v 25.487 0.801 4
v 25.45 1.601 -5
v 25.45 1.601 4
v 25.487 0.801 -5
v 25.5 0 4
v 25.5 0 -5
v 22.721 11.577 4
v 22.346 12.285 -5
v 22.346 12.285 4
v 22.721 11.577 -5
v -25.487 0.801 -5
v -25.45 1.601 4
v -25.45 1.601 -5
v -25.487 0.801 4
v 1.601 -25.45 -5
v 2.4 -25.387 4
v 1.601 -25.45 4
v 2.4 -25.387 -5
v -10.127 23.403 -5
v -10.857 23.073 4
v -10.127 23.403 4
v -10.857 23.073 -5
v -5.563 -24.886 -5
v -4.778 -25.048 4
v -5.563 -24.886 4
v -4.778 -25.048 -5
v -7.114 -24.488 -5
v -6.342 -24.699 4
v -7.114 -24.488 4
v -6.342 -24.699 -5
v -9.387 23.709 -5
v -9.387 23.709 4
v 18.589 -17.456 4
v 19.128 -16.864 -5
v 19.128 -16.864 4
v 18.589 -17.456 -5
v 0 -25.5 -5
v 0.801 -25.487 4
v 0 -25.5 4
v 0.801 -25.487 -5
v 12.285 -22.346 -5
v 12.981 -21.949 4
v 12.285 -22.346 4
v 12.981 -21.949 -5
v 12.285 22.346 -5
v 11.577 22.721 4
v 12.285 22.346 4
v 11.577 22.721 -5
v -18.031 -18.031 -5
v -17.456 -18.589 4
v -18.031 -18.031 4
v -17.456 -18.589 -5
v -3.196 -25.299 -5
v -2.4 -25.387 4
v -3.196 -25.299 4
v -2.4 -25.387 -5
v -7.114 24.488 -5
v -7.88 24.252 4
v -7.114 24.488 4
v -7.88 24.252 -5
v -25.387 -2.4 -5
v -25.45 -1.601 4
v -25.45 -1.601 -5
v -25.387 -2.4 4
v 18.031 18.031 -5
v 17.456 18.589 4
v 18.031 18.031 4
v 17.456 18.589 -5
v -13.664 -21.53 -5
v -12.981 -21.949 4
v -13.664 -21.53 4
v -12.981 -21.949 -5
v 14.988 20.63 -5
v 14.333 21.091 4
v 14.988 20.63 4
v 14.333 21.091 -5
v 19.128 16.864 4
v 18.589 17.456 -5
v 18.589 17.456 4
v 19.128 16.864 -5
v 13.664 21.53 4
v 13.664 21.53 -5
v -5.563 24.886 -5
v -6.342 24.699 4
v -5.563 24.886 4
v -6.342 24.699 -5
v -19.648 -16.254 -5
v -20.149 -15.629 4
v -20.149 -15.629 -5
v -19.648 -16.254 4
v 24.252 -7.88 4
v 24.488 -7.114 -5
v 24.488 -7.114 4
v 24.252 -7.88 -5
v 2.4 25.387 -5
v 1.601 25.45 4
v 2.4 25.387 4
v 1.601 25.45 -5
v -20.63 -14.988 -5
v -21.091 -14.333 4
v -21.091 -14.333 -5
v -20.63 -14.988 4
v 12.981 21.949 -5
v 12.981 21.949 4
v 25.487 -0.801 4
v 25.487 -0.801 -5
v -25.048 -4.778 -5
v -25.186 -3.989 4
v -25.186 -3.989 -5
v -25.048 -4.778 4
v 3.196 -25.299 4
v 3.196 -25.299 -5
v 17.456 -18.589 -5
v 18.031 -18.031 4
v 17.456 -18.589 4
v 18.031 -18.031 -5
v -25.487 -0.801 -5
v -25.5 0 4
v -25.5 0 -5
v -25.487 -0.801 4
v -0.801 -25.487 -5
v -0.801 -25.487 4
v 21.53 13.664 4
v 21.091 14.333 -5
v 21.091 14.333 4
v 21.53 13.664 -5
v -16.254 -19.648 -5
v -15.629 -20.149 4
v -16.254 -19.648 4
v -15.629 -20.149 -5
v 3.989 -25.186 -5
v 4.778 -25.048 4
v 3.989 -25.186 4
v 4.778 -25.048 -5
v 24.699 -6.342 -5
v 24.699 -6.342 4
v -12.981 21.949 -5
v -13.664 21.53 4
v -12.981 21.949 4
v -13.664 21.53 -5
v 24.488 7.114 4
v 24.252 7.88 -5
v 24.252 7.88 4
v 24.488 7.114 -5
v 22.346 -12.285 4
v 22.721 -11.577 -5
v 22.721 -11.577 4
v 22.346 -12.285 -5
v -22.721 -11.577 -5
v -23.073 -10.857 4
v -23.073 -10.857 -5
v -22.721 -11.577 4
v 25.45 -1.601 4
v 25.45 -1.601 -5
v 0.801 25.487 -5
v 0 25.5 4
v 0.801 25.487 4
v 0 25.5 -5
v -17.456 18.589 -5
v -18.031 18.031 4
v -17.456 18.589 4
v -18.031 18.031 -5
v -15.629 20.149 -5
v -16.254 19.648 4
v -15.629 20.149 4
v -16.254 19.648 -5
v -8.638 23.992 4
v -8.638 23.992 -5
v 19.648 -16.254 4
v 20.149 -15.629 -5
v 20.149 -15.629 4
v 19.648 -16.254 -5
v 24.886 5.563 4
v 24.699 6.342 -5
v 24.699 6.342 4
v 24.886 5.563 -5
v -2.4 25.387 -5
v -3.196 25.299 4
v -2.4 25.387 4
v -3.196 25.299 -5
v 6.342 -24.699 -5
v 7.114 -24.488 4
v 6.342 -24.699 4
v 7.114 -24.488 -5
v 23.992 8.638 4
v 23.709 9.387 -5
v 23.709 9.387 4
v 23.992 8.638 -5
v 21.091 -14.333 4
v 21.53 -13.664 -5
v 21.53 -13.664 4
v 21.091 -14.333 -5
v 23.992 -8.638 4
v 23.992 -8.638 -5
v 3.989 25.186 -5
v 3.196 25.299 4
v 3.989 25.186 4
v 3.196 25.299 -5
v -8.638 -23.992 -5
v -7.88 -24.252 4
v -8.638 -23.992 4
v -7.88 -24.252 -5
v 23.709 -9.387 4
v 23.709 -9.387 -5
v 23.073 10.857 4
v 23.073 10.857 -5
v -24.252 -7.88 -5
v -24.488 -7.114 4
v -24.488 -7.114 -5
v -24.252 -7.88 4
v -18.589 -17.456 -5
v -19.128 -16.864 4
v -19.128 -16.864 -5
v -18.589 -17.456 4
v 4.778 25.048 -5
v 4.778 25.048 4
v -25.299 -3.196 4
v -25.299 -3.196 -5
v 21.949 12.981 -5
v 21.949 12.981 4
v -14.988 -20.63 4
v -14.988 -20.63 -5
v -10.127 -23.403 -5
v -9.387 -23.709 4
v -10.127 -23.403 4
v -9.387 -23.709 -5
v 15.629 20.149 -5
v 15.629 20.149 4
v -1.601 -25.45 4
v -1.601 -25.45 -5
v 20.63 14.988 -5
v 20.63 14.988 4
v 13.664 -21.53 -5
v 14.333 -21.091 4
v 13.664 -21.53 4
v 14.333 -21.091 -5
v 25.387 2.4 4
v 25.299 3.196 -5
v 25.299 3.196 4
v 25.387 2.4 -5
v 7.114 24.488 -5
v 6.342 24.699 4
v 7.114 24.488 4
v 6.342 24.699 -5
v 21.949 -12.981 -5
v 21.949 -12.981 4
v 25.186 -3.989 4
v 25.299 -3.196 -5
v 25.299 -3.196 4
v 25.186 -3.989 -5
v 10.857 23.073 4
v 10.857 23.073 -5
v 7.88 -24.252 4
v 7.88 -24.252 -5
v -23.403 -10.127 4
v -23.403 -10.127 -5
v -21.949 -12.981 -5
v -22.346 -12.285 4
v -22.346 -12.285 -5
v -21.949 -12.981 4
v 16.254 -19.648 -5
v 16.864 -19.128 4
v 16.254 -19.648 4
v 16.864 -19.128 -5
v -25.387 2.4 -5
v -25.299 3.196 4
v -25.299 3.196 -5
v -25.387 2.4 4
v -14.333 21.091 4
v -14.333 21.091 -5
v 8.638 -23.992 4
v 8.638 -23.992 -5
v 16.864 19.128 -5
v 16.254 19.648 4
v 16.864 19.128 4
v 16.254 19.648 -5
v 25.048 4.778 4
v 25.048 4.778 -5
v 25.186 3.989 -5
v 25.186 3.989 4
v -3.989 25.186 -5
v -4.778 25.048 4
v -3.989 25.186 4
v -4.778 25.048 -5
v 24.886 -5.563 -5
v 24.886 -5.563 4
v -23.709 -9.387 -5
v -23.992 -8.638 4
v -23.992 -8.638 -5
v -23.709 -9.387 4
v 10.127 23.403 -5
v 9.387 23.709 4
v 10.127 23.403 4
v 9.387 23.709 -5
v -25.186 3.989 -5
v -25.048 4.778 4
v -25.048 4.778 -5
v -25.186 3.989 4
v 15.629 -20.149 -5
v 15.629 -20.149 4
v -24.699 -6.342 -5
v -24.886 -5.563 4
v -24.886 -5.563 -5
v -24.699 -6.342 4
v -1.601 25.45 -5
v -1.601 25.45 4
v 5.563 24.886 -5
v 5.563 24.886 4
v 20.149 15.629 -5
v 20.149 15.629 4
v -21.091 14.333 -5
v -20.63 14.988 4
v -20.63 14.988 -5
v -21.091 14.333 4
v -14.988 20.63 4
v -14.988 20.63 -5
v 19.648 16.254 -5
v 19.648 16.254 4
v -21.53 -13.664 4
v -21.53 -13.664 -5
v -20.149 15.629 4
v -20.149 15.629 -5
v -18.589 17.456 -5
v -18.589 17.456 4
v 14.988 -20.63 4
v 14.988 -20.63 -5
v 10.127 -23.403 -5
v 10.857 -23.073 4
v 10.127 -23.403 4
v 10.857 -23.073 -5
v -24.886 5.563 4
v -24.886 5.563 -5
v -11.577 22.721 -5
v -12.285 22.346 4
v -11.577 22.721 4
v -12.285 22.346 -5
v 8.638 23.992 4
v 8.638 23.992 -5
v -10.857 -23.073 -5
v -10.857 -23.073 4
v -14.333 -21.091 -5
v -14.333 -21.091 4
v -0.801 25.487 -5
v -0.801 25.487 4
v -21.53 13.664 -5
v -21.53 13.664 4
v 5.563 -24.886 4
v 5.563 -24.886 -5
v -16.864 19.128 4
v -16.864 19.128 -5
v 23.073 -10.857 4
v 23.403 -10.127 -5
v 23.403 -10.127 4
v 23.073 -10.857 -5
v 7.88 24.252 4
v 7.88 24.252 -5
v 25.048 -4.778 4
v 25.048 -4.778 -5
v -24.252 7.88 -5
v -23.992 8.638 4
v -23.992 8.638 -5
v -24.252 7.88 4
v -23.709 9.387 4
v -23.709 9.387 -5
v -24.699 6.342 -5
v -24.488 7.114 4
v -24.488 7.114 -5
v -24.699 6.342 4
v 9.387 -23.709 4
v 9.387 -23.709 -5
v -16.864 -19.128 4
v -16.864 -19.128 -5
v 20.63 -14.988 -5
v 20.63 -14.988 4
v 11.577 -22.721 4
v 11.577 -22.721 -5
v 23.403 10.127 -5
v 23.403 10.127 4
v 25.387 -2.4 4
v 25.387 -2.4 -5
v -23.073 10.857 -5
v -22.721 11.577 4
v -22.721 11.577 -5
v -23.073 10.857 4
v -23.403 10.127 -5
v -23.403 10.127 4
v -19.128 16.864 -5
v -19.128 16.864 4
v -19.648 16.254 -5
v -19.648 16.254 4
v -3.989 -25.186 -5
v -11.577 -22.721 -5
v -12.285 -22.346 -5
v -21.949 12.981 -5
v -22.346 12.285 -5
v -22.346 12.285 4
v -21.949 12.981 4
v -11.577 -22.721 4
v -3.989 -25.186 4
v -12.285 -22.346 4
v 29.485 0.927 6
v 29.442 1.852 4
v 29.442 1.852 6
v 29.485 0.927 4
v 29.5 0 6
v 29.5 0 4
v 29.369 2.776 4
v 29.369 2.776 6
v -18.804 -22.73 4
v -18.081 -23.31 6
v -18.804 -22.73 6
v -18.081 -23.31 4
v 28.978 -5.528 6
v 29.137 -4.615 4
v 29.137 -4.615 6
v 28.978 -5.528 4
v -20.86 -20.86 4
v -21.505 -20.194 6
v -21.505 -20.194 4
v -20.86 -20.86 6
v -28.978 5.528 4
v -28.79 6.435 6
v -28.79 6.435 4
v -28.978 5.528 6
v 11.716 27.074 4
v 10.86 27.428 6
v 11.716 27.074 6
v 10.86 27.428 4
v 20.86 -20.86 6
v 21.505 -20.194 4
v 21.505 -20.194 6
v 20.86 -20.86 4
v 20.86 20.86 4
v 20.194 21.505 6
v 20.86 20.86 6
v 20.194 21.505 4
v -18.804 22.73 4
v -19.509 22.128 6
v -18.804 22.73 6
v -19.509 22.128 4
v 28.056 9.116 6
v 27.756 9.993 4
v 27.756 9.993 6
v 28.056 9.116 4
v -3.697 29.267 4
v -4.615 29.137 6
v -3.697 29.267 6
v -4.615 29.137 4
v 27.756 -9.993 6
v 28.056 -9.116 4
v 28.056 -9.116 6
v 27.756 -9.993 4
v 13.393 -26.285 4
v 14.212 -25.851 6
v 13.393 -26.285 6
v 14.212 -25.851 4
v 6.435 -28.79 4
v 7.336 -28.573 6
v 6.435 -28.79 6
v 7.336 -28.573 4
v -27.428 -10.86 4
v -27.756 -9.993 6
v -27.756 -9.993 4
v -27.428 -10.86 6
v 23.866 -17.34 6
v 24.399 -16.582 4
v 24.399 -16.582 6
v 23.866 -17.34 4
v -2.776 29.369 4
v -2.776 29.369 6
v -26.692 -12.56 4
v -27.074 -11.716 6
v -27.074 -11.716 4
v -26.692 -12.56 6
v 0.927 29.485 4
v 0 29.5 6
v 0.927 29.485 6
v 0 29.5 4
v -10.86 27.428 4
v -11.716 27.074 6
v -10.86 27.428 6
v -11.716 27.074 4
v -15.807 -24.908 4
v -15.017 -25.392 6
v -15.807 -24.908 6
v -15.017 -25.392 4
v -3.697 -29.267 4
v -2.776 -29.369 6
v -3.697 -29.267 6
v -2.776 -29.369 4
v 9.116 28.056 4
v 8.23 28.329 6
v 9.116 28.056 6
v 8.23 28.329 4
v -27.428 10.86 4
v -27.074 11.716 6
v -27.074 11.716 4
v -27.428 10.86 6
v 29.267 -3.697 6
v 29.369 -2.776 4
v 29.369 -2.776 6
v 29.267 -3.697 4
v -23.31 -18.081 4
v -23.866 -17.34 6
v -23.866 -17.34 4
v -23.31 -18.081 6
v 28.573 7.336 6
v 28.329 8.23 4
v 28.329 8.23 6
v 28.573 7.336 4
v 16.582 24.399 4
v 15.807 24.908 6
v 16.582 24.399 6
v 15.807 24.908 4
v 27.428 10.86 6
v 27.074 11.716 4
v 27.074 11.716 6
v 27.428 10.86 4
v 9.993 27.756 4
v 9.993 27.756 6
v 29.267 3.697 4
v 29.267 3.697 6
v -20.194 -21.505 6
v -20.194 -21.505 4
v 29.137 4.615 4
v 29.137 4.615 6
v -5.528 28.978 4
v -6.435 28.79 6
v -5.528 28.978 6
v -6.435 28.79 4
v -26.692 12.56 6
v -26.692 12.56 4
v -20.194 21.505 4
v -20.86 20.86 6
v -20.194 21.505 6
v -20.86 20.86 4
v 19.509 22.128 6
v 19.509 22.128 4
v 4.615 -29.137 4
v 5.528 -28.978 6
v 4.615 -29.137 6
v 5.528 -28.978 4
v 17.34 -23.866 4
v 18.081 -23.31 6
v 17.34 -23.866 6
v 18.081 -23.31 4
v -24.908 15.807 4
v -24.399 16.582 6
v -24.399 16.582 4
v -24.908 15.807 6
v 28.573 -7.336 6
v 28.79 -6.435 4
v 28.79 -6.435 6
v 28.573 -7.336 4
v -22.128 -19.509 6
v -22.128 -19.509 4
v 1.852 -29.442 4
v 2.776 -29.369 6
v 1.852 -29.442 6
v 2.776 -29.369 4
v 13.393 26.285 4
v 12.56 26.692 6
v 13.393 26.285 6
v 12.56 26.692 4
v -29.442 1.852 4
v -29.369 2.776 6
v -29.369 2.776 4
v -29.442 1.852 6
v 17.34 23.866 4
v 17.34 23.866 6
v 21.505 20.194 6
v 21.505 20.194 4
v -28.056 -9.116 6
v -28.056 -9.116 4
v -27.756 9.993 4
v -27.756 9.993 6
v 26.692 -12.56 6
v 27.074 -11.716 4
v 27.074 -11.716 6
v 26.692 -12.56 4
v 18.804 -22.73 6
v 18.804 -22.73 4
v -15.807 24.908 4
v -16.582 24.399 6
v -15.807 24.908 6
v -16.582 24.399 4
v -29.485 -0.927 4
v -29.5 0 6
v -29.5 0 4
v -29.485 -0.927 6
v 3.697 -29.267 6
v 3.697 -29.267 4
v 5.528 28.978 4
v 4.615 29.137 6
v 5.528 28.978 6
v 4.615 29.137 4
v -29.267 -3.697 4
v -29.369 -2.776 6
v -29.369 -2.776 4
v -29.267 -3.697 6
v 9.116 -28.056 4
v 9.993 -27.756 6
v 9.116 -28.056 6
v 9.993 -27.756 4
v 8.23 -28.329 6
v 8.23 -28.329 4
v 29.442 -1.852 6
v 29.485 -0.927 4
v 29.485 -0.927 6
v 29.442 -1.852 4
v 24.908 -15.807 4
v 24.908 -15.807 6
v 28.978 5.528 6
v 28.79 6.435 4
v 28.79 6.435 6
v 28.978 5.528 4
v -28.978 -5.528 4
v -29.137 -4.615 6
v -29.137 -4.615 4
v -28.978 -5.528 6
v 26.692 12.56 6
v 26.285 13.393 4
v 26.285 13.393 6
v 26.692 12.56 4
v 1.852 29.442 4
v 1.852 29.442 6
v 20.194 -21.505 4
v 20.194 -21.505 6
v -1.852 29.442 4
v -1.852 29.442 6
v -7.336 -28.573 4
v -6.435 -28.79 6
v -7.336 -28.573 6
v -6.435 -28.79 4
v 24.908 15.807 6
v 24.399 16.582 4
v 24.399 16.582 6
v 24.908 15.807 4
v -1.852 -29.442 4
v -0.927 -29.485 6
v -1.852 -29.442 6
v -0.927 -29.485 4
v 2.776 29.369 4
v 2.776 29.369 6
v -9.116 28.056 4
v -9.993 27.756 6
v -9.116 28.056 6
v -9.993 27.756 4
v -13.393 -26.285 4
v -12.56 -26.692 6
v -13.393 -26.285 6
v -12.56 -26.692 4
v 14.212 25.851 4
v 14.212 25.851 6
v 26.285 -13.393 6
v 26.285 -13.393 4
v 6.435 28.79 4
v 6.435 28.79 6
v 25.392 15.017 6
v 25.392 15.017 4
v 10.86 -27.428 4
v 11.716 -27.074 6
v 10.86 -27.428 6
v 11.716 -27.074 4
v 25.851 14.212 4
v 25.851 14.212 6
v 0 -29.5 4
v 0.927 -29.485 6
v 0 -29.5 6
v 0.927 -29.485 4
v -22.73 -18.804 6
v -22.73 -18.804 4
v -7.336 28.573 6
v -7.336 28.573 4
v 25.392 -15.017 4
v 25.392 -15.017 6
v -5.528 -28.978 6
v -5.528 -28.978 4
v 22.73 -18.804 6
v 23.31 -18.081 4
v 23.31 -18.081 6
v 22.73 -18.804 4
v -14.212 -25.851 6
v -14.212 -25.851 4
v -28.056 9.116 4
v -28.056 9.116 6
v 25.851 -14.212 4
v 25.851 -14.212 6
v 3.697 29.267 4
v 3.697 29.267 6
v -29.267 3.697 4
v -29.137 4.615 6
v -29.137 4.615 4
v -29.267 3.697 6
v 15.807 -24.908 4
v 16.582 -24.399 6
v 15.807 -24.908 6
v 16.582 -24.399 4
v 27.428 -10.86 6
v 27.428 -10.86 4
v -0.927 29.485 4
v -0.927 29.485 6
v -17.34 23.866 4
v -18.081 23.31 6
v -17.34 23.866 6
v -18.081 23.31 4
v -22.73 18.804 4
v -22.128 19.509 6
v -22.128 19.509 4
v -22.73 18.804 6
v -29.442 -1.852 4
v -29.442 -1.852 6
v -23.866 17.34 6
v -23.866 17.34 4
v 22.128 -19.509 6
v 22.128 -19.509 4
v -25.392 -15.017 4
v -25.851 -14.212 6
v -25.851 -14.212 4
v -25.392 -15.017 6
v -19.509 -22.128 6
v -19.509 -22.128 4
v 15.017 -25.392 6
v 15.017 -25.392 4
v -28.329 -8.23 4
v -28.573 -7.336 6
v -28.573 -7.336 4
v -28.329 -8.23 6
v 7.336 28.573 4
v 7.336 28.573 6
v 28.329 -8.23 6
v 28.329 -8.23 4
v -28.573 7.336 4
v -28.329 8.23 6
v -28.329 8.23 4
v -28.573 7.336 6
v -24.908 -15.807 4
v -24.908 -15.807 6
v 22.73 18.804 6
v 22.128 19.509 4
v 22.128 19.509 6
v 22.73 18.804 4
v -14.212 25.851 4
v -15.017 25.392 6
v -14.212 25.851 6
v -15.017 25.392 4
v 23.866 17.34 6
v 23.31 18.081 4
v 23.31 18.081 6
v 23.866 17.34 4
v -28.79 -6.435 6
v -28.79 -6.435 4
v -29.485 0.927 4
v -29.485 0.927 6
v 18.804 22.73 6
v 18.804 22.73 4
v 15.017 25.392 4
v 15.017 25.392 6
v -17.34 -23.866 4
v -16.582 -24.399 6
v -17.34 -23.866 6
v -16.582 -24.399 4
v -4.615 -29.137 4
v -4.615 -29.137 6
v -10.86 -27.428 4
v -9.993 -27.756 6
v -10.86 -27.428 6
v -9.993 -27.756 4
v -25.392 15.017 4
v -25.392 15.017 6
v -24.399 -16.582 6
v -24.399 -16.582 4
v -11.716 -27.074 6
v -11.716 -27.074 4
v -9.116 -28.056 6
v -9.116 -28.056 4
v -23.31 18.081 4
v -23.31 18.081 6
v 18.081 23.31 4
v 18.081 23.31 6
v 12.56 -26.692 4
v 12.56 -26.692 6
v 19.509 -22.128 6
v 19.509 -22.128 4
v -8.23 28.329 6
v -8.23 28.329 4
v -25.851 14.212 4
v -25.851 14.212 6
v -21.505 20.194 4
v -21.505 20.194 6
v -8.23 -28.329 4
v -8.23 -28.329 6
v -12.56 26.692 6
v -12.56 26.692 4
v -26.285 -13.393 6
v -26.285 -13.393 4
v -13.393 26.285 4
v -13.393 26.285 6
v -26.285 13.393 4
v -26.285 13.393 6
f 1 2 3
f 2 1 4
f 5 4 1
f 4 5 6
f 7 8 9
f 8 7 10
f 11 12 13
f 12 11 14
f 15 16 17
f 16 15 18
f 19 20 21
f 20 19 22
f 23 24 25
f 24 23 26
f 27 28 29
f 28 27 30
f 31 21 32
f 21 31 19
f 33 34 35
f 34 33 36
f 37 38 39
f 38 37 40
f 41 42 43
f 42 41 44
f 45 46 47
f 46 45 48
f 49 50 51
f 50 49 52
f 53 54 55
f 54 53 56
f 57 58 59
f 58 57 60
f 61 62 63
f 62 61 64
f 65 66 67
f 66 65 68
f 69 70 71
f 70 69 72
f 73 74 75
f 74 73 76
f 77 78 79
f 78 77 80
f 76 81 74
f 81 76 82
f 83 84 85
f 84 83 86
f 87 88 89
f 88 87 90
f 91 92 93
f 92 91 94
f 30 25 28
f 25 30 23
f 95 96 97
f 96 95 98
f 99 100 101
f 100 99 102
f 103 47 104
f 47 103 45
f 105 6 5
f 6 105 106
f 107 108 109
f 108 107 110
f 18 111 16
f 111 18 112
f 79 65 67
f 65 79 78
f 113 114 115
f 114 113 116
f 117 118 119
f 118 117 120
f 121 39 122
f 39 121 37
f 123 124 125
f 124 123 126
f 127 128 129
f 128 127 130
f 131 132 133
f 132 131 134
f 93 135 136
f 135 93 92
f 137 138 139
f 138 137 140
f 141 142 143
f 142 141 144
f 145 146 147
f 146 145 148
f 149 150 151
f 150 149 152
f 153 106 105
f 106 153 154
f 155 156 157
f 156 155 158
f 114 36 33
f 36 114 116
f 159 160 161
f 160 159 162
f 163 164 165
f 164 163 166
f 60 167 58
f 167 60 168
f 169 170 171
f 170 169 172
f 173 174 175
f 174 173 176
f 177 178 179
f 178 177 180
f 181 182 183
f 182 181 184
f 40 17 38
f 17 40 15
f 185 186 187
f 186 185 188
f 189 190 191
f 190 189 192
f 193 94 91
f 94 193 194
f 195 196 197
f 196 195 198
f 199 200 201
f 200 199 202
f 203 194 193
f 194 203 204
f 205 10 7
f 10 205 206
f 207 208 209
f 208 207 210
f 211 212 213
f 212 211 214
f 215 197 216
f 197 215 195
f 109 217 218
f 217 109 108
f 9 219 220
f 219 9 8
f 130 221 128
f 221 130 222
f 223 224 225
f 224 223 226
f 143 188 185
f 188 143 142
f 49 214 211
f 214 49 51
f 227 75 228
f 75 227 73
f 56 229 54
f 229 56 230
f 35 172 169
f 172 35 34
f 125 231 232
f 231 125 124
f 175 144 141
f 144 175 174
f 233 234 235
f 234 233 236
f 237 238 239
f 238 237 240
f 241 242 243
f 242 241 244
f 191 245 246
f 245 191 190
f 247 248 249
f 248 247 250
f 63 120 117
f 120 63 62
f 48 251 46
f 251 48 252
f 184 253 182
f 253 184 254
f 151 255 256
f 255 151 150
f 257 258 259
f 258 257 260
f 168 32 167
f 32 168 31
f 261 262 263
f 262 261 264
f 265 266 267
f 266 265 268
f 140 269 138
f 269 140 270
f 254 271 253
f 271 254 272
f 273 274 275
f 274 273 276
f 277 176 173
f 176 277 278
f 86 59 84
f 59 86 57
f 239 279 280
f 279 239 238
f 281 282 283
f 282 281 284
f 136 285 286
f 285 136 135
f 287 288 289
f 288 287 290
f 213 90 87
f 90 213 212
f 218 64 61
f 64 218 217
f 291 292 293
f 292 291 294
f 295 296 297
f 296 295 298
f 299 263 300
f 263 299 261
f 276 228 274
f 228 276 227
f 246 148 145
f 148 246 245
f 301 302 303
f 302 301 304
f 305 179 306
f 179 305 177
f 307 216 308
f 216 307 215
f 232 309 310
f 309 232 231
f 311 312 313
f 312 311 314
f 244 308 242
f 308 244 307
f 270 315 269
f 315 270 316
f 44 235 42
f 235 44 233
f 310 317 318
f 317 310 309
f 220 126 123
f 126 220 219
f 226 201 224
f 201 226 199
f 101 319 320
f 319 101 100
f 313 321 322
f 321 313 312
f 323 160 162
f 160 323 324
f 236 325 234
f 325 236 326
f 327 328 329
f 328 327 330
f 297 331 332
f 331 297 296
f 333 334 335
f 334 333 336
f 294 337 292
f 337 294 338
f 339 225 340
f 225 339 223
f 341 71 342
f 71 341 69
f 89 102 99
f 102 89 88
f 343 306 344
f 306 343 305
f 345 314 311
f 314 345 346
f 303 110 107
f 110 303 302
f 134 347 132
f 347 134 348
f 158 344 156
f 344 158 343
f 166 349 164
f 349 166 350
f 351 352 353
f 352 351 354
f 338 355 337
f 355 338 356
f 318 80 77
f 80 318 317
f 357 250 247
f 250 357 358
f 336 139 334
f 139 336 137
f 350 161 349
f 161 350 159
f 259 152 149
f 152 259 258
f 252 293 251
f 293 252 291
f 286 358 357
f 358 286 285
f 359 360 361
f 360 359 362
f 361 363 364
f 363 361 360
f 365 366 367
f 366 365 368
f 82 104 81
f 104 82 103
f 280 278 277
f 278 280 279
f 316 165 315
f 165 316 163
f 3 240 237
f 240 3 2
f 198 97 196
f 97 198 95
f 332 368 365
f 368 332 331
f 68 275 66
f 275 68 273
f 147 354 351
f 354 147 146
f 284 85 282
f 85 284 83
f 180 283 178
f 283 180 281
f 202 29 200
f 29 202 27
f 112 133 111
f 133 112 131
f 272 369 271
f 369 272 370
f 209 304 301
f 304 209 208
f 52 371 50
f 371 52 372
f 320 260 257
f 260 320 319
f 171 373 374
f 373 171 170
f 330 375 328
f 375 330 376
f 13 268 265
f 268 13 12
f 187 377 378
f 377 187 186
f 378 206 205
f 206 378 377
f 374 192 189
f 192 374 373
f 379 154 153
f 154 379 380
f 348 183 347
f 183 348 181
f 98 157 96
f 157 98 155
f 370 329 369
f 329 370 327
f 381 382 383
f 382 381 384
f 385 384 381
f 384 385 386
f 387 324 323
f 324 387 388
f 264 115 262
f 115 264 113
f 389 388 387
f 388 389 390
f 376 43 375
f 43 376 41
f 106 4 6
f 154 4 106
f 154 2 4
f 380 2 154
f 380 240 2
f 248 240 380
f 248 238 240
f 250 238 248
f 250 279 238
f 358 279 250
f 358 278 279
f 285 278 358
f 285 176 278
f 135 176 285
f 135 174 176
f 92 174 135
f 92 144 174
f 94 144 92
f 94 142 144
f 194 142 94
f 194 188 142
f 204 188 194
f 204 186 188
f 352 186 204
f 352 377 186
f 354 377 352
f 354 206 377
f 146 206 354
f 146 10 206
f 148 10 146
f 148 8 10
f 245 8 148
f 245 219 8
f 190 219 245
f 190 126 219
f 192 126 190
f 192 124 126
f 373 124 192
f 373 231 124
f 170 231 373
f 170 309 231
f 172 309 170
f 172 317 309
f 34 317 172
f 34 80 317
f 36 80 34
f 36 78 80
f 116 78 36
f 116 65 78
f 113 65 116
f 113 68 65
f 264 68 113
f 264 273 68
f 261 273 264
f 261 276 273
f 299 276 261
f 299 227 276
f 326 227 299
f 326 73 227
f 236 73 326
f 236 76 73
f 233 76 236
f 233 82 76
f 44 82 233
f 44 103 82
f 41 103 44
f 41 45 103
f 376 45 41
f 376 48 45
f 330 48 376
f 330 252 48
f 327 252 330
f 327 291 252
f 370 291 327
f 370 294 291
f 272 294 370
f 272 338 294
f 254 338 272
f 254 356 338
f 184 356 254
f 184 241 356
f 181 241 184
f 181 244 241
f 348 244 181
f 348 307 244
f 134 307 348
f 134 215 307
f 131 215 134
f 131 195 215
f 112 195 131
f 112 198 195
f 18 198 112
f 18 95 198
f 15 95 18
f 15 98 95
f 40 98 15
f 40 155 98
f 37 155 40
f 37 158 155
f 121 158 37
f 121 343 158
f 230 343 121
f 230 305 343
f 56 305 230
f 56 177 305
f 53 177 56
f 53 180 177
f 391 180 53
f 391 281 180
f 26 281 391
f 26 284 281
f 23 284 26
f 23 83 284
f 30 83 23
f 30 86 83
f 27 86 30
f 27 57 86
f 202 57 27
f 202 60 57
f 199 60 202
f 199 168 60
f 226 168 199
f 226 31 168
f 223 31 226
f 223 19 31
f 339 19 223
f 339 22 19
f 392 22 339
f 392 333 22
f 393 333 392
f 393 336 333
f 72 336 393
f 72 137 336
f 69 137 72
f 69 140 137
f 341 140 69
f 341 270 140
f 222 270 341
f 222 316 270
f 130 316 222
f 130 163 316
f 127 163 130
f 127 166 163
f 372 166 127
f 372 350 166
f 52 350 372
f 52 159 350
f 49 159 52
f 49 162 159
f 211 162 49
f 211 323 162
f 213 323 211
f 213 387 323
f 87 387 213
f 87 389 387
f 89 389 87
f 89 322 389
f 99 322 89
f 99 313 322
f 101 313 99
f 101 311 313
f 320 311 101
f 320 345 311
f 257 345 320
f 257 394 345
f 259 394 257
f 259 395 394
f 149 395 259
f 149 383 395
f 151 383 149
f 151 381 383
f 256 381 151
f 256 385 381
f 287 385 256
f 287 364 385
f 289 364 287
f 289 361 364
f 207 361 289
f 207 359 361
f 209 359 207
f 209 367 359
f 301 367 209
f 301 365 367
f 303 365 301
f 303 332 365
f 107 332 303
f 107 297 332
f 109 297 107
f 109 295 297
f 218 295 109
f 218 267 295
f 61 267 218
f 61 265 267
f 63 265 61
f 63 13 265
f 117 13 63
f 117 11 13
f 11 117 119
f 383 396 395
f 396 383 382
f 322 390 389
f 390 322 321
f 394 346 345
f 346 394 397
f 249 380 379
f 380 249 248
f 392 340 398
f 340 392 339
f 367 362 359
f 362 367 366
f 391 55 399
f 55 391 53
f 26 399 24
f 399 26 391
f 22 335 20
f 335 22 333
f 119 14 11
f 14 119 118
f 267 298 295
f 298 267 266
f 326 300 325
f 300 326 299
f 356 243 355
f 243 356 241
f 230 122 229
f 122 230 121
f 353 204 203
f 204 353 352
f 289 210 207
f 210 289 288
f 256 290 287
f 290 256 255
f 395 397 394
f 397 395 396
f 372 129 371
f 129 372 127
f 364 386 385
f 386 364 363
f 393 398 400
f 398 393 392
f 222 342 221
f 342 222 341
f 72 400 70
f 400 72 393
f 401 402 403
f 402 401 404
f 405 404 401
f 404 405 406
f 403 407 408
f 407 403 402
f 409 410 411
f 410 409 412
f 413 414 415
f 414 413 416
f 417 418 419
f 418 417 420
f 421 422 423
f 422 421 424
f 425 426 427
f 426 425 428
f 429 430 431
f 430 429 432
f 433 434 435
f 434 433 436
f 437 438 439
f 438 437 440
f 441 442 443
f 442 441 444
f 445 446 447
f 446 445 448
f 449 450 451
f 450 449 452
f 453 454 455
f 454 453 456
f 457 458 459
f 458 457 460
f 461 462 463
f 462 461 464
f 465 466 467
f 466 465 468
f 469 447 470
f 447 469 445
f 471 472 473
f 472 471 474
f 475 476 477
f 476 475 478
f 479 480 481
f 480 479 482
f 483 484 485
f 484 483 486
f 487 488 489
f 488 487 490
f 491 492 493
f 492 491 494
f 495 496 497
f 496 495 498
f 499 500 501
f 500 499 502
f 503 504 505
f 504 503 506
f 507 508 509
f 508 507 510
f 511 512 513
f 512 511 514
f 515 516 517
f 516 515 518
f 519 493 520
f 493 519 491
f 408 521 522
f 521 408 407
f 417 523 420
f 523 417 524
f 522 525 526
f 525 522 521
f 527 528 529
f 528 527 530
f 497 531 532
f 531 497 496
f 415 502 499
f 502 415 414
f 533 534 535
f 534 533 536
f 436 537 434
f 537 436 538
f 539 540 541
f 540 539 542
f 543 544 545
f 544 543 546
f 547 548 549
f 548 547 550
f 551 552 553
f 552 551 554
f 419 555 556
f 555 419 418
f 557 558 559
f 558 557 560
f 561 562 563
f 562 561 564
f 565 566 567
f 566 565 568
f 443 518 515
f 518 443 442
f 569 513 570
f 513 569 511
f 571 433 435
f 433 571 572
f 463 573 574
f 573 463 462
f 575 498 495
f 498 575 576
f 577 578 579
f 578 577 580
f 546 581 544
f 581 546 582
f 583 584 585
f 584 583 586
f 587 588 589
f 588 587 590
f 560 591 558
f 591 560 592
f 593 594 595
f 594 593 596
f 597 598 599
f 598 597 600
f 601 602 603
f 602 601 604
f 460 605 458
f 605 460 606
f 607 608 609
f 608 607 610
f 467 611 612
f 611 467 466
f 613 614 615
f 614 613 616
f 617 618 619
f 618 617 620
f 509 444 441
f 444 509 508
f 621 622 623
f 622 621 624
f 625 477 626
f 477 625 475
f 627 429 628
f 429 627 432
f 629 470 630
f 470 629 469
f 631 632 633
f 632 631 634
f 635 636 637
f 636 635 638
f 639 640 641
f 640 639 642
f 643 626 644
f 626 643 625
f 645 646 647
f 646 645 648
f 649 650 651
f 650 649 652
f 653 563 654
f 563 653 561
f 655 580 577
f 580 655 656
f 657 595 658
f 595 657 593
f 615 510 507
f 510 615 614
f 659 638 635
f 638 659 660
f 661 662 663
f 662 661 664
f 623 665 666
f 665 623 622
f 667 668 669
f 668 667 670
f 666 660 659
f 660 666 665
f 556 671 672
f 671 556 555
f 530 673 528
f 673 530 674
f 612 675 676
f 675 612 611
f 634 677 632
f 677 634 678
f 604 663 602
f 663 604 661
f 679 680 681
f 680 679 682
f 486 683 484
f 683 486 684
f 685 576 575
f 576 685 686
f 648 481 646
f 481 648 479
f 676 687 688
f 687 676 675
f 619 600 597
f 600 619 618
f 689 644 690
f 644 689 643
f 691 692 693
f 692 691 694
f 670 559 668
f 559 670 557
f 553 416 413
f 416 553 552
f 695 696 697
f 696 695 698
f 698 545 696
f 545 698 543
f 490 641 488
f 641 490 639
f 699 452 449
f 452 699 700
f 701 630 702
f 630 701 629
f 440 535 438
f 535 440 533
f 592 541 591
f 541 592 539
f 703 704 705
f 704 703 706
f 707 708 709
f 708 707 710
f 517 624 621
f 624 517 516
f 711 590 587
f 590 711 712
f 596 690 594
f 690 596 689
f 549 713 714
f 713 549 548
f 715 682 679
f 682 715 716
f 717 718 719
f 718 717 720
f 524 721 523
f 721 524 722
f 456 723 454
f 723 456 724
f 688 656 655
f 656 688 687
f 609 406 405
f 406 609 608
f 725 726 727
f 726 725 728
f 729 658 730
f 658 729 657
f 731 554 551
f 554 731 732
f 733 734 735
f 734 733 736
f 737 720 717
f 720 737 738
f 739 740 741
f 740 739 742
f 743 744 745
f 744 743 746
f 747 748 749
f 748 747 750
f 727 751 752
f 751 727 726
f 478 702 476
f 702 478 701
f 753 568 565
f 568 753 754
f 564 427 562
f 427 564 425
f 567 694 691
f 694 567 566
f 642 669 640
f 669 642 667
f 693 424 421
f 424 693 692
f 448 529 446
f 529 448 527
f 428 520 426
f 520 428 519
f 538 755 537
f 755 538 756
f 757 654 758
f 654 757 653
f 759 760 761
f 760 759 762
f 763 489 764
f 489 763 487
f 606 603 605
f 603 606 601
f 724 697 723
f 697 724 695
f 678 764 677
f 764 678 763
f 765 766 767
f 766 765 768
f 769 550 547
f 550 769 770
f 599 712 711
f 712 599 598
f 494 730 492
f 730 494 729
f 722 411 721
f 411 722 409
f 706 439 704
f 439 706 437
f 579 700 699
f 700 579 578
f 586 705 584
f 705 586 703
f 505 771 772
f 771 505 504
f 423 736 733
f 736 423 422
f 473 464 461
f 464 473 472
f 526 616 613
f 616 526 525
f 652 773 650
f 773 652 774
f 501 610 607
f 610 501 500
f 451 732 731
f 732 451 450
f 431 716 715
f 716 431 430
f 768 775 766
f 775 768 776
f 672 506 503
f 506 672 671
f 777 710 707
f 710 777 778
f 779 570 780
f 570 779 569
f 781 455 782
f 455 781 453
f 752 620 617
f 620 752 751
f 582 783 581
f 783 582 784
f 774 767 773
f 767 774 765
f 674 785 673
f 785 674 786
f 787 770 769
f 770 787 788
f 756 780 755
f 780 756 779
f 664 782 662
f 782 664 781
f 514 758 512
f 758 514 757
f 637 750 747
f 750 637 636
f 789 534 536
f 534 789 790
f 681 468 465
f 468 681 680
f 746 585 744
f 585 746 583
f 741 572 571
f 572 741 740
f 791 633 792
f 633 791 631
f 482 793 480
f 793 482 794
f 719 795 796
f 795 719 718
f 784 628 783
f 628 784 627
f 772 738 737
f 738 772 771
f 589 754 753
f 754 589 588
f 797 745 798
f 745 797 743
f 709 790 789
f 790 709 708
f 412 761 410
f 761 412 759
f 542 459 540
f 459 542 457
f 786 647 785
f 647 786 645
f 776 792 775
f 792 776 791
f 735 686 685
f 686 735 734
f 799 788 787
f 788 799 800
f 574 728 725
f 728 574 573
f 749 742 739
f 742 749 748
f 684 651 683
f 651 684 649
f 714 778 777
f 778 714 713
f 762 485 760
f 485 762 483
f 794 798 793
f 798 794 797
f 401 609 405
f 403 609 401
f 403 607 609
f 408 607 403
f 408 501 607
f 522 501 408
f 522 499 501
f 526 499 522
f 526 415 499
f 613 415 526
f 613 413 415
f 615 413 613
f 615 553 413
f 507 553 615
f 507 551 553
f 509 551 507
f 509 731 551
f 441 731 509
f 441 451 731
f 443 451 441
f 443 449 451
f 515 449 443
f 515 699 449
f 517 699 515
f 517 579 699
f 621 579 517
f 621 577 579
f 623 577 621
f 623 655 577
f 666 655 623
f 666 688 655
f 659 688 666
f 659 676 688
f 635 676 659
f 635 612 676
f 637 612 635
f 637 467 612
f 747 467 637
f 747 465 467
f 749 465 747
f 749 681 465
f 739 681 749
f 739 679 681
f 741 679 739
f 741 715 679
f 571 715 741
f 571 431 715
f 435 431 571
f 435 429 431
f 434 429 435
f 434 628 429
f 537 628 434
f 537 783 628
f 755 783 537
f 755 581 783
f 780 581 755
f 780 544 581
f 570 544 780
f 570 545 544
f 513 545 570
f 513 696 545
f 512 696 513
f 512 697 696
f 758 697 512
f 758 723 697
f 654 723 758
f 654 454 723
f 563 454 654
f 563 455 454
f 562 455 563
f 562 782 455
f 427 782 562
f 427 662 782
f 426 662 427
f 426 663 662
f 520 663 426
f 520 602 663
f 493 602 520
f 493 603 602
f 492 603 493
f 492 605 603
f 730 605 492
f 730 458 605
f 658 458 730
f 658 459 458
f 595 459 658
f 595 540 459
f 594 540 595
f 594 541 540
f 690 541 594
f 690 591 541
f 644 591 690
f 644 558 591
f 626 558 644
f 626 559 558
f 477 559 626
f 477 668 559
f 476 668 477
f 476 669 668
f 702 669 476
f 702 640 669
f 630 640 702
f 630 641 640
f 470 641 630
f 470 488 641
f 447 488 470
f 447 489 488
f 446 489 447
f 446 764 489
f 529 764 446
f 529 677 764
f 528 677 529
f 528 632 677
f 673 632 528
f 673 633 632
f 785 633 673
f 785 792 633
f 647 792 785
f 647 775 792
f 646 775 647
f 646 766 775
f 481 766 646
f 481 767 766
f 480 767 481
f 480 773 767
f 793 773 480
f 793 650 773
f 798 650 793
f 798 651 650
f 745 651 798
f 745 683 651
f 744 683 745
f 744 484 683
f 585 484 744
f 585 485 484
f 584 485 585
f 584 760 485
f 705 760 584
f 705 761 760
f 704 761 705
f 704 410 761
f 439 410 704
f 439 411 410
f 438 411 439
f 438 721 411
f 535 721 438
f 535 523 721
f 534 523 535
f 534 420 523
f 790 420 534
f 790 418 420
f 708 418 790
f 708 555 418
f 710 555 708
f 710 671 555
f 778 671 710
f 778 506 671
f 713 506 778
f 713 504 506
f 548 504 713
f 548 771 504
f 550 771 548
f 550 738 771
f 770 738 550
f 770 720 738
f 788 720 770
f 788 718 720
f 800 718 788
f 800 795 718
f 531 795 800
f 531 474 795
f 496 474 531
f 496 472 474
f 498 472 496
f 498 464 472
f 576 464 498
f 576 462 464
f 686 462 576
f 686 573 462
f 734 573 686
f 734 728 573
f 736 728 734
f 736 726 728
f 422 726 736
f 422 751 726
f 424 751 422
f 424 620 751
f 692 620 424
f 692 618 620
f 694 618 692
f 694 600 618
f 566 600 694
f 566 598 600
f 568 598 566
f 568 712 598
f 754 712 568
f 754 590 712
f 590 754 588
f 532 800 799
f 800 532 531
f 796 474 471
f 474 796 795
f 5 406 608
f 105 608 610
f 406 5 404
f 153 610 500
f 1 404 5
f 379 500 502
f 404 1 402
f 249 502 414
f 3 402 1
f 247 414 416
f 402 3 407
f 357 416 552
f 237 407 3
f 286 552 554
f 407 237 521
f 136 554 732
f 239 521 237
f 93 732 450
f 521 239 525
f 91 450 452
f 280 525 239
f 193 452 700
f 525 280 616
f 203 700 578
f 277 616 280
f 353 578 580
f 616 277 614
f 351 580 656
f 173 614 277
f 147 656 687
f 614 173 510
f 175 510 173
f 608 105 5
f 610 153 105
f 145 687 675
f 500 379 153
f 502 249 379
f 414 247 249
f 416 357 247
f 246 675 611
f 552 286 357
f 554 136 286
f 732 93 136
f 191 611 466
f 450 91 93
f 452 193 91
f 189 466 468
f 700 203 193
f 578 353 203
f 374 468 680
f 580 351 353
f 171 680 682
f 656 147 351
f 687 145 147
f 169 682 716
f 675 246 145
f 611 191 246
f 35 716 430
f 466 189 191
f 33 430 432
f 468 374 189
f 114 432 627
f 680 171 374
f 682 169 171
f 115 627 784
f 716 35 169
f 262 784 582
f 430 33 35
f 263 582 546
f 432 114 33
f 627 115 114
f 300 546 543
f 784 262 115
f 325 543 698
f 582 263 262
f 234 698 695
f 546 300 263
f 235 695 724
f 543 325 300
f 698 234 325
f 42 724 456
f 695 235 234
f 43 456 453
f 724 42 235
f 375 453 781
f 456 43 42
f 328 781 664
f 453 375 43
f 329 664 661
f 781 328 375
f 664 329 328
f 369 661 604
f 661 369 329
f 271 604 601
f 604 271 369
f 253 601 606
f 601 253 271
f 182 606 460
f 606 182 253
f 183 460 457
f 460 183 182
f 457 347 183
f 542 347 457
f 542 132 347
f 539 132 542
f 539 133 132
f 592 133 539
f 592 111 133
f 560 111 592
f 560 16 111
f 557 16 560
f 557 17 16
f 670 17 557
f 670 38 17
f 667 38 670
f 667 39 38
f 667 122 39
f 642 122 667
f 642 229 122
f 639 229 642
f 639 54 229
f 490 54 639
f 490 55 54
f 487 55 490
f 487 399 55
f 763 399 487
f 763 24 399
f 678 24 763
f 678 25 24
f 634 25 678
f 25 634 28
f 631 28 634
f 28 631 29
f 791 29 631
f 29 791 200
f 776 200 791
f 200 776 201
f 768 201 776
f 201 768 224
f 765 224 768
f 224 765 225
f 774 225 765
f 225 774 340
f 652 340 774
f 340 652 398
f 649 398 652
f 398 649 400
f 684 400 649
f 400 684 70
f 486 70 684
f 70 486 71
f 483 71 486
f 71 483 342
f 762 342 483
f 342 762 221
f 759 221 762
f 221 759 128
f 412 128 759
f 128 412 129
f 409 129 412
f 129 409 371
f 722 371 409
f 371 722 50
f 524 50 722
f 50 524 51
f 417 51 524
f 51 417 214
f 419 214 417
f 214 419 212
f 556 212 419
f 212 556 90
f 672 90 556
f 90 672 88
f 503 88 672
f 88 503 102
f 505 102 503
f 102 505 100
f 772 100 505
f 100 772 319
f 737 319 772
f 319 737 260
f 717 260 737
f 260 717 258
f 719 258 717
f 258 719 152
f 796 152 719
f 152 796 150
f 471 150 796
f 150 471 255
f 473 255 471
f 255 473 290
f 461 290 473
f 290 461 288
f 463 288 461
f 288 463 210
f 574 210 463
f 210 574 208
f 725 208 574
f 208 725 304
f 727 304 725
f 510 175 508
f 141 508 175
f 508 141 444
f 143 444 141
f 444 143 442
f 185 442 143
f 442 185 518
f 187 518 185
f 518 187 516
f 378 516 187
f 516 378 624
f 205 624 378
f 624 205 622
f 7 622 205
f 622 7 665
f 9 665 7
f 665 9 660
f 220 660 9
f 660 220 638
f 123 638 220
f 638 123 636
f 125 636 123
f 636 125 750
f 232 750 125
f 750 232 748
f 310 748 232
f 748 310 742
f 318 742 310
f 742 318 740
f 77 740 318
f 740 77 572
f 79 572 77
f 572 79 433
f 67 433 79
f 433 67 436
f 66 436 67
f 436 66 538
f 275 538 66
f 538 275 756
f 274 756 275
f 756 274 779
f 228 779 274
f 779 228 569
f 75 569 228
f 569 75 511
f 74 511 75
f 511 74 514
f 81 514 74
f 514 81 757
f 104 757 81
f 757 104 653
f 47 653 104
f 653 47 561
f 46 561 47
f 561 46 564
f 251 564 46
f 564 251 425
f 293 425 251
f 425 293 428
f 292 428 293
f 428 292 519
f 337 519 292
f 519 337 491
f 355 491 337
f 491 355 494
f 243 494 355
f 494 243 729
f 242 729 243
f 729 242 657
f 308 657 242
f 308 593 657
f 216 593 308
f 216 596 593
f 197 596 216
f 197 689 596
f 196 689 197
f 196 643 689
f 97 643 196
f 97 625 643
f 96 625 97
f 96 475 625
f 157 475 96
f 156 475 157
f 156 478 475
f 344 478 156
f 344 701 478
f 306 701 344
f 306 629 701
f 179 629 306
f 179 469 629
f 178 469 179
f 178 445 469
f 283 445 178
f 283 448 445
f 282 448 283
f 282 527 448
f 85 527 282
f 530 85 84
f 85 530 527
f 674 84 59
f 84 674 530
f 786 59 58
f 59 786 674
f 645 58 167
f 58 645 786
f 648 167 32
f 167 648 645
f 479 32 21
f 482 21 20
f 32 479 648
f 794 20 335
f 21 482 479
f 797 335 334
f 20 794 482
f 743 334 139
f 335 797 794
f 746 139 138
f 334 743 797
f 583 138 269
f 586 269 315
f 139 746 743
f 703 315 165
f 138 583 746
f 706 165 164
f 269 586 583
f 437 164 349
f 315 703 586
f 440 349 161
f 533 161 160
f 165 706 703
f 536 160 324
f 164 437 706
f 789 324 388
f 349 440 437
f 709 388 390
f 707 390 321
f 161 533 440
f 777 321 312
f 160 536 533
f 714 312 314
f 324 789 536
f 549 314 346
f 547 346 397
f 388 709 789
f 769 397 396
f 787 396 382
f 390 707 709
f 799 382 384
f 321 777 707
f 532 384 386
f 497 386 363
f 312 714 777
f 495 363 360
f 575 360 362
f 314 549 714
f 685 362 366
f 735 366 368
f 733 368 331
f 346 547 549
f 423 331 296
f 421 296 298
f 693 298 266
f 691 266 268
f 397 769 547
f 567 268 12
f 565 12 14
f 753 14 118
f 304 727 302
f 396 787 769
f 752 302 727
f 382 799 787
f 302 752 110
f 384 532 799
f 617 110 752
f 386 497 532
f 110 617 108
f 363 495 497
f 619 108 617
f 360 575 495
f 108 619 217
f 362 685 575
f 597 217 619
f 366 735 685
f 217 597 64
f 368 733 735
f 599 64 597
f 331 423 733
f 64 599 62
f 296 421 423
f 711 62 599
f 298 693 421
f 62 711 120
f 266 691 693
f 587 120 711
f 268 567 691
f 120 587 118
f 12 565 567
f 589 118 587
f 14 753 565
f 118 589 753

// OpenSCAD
module cover() {
  cylinder(h=10, d=51, center=true, $fn=200);
  translate([0,0,5]) cylinder(h=2, d=59, center=true, $fn=200);
}

cover();
